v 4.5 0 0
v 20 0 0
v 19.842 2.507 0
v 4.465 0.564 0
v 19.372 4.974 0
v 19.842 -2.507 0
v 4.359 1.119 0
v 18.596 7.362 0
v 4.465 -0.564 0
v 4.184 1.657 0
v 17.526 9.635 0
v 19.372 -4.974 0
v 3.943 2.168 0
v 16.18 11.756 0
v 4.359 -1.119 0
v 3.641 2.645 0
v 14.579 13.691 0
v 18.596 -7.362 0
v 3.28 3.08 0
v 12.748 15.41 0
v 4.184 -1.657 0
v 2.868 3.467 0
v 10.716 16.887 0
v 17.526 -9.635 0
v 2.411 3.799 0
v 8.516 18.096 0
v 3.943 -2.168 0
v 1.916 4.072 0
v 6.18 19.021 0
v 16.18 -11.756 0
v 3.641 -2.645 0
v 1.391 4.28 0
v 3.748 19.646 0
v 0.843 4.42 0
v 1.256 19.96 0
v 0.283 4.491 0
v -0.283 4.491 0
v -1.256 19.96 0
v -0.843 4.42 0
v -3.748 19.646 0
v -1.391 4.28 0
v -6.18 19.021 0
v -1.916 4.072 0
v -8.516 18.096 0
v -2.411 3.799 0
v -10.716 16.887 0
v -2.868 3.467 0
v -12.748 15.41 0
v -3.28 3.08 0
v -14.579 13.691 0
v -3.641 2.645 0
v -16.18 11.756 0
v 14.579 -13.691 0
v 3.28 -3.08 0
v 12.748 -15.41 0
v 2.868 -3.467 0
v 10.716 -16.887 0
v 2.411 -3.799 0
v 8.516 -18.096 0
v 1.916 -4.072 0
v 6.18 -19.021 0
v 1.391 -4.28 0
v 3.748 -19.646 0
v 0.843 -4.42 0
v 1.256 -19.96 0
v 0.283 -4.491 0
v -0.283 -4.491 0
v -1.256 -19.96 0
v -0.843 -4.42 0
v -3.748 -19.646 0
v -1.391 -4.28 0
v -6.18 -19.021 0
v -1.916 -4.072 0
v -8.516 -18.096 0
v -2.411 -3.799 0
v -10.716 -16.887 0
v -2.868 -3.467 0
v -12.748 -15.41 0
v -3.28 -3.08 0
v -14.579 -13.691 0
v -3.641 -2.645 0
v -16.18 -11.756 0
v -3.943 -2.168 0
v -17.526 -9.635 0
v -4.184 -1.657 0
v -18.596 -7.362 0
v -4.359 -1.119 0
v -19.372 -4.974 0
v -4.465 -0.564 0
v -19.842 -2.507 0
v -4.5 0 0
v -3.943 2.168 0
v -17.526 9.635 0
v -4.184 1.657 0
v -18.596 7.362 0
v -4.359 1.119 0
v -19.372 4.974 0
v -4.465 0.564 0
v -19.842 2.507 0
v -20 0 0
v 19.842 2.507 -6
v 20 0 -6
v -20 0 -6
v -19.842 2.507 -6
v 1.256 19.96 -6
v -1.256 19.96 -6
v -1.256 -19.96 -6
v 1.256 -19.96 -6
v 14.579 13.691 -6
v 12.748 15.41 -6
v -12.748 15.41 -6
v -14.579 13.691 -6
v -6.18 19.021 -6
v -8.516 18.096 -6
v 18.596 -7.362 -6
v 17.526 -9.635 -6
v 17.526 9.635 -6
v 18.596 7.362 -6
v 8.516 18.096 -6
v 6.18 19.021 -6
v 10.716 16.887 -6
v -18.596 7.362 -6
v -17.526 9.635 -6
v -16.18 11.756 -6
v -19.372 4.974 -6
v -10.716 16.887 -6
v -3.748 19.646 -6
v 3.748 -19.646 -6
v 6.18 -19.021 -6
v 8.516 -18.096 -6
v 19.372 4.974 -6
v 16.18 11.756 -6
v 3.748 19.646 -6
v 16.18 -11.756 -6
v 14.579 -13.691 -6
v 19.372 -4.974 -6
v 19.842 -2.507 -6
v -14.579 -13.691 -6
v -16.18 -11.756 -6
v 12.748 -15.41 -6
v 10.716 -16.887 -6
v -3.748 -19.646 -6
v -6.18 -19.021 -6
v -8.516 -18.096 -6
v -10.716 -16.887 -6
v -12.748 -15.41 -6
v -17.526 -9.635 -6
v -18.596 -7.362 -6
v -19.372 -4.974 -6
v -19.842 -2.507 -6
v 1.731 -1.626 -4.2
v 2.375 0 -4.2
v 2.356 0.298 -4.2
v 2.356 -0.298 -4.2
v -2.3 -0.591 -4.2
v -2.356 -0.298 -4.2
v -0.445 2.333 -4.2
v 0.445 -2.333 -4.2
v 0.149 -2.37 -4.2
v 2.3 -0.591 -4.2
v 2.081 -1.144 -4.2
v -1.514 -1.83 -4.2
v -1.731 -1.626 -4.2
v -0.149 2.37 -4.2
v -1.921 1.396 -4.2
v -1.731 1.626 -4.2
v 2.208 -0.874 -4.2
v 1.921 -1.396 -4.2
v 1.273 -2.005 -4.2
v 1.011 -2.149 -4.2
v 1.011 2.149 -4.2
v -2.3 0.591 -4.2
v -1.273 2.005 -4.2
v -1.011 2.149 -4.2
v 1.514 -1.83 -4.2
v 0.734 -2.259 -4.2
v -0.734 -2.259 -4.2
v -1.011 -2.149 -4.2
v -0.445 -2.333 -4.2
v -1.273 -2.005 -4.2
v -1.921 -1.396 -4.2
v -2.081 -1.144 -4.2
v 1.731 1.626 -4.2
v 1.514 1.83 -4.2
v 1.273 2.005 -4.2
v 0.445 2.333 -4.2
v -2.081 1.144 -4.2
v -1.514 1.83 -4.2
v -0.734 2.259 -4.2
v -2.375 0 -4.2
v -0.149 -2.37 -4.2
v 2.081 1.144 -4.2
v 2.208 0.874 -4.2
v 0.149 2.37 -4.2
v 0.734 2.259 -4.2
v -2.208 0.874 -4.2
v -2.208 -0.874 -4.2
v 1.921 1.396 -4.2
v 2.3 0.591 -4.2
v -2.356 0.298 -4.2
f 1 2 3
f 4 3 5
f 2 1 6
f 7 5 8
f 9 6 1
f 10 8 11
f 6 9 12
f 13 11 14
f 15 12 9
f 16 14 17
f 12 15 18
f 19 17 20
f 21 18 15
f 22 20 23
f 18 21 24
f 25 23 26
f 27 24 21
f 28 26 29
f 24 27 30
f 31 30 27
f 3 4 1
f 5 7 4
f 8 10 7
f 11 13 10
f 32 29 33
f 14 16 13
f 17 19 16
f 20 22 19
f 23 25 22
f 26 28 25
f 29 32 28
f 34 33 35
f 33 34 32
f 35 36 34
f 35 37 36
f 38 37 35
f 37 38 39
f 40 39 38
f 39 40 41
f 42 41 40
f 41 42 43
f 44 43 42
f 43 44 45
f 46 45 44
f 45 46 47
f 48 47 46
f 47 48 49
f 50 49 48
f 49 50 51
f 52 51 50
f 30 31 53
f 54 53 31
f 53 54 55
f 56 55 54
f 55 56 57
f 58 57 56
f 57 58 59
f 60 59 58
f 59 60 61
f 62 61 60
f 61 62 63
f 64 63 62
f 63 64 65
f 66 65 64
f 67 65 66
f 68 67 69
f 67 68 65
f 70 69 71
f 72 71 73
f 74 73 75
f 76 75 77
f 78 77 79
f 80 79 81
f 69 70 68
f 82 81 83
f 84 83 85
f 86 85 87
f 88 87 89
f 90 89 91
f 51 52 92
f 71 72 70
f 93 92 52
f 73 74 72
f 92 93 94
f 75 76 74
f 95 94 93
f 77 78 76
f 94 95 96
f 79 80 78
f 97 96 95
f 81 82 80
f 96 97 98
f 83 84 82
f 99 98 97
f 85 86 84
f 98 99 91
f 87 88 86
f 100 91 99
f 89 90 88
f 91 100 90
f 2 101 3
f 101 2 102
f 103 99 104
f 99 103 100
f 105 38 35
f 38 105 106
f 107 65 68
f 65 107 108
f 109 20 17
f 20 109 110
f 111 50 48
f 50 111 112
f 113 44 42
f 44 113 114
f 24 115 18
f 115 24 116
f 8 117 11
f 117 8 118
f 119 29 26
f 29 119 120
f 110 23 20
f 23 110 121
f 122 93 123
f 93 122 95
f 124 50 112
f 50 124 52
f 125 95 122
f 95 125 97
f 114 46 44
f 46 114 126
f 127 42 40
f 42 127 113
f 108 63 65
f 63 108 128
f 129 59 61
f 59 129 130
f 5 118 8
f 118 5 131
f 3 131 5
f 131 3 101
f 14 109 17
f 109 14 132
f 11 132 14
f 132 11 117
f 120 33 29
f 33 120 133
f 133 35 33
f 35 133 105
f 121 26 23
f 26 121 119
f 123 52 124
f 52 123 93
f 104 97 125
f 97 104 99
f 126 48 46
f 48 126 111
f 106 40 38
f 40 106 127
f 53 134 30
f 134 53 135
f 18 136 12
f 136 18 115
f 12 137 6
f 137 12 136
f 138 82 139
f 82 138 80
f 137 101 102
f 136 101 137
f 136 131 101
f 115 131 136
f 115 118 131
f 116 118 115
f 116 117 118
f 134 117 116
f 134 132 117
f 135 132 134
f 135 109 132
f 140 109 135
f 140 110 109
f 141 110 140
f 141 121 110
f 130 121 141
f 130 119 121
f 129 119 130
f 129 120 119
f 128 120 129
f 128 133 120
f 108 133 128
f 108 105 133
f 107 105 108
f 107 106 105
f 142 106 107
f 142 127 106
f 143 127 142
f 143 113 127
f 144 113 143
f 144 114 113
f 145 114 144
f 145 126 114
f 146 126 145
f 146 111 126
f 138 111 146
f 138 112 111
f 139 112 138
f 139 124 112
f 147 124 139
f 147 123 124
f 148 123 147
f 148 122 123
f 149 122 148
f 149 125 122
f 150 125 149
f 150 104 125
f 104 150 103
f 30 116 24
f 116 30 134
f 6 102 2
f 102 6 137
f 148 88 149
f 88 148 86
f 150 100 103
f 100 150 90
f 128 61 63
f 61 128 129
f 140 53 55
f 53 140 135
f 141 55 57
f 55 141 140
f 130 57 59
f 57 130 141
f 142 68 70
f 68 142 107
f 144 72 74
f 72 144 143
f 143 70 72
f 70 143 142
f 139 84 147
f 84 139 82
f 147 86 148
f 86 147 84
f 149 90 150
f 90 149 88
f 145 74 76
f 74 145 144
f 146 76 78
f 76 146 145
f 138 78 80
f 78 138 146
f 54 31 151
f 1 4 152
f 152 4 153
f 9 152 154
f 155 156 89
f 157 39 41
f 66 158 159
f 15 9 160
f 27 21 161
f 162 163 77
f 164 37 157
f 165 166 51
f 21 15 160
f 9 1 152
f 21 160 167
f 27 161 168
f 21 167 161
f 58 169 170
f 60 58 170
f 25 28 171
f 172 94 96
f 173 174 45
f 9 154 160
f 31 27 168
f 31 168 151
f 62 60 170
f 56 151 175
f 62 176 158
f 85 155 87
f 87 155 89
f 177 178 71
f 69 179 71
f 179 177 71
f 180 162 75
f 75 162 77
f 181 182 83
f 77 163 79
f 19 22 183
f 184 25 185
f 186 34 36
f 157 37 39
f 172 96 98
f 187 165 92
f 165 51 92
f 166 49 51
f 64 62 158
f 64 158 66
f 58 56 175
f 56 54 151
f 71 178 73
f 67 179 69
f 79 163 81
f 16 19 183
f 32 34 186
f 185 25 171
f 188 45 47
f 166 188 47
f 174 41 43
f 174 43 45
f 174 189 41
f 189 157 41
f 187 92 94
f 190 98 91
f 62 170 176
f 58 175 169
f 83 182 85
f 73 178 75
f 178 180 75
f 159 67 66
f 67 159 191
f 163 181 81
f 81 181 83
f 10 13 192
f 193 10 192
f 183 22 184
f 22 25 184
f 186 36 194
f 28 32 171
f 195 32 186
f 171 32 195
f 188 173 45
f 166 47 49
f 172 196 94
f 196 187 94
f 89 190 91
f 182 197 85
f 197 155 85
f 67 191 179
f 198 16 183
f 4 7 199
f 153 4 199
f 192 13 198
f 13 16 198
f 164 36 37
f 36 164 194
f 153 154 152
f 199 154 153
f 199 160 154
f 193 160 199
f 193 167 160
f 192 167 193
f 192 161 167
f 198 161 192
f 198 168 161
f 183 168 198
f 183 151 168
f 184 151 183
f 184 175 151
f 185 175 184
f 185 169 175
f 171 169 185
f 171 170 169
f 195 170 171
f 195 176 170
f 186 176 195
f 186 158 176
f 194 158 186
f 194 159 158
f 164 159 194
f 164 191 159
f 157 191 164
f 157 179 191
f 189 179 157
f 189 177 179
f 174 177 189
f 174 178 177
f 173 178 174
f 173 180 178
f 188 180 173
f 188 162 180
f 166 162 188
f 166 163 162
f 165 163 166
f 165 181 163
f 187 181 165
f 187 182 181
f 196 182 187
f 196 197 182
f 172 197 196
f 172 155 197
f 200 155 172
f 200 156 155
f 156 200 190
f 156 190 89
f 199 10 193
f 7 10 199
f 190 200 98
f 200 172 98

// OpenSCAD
$fn = 50;


difference() {
	union() {
		translate(v = [0, 0, -3.0000000000]) {
			cylinder(h = 3, r = 10.0000000000);
		}
		translate(v = [0, 0, -6.0000000000]) {
			cylinder(h = 6, r = 20.0000000000);
		}
	}
	union() {
		translate(v = [0, 0, 0]) {
			rotate(a = [0, 0, 0]) {
				difference() {
					union() {
						#translate(v = [0, 0, -3.0000000000]) {
							cylinder(h = 3, r = 2.2500000000);
						}
						#translate(v = [0, 0, -4.2000000000]) {
							cylinder(h = 4.2000000000, r1 = 2.3750000000, r2 = 4.5000000000);
						}
						#translate(v = [0, 0, -3.0000000000]) {
							cylinder(h = 3, r = 2.3750000000);
						}
						#translate(v = [0, 0, -3.0000000000]) {
							cylinder(h = 3, r = 2.2500000000);
						}
					}
					union();
				}
			}
		}
	}
}
